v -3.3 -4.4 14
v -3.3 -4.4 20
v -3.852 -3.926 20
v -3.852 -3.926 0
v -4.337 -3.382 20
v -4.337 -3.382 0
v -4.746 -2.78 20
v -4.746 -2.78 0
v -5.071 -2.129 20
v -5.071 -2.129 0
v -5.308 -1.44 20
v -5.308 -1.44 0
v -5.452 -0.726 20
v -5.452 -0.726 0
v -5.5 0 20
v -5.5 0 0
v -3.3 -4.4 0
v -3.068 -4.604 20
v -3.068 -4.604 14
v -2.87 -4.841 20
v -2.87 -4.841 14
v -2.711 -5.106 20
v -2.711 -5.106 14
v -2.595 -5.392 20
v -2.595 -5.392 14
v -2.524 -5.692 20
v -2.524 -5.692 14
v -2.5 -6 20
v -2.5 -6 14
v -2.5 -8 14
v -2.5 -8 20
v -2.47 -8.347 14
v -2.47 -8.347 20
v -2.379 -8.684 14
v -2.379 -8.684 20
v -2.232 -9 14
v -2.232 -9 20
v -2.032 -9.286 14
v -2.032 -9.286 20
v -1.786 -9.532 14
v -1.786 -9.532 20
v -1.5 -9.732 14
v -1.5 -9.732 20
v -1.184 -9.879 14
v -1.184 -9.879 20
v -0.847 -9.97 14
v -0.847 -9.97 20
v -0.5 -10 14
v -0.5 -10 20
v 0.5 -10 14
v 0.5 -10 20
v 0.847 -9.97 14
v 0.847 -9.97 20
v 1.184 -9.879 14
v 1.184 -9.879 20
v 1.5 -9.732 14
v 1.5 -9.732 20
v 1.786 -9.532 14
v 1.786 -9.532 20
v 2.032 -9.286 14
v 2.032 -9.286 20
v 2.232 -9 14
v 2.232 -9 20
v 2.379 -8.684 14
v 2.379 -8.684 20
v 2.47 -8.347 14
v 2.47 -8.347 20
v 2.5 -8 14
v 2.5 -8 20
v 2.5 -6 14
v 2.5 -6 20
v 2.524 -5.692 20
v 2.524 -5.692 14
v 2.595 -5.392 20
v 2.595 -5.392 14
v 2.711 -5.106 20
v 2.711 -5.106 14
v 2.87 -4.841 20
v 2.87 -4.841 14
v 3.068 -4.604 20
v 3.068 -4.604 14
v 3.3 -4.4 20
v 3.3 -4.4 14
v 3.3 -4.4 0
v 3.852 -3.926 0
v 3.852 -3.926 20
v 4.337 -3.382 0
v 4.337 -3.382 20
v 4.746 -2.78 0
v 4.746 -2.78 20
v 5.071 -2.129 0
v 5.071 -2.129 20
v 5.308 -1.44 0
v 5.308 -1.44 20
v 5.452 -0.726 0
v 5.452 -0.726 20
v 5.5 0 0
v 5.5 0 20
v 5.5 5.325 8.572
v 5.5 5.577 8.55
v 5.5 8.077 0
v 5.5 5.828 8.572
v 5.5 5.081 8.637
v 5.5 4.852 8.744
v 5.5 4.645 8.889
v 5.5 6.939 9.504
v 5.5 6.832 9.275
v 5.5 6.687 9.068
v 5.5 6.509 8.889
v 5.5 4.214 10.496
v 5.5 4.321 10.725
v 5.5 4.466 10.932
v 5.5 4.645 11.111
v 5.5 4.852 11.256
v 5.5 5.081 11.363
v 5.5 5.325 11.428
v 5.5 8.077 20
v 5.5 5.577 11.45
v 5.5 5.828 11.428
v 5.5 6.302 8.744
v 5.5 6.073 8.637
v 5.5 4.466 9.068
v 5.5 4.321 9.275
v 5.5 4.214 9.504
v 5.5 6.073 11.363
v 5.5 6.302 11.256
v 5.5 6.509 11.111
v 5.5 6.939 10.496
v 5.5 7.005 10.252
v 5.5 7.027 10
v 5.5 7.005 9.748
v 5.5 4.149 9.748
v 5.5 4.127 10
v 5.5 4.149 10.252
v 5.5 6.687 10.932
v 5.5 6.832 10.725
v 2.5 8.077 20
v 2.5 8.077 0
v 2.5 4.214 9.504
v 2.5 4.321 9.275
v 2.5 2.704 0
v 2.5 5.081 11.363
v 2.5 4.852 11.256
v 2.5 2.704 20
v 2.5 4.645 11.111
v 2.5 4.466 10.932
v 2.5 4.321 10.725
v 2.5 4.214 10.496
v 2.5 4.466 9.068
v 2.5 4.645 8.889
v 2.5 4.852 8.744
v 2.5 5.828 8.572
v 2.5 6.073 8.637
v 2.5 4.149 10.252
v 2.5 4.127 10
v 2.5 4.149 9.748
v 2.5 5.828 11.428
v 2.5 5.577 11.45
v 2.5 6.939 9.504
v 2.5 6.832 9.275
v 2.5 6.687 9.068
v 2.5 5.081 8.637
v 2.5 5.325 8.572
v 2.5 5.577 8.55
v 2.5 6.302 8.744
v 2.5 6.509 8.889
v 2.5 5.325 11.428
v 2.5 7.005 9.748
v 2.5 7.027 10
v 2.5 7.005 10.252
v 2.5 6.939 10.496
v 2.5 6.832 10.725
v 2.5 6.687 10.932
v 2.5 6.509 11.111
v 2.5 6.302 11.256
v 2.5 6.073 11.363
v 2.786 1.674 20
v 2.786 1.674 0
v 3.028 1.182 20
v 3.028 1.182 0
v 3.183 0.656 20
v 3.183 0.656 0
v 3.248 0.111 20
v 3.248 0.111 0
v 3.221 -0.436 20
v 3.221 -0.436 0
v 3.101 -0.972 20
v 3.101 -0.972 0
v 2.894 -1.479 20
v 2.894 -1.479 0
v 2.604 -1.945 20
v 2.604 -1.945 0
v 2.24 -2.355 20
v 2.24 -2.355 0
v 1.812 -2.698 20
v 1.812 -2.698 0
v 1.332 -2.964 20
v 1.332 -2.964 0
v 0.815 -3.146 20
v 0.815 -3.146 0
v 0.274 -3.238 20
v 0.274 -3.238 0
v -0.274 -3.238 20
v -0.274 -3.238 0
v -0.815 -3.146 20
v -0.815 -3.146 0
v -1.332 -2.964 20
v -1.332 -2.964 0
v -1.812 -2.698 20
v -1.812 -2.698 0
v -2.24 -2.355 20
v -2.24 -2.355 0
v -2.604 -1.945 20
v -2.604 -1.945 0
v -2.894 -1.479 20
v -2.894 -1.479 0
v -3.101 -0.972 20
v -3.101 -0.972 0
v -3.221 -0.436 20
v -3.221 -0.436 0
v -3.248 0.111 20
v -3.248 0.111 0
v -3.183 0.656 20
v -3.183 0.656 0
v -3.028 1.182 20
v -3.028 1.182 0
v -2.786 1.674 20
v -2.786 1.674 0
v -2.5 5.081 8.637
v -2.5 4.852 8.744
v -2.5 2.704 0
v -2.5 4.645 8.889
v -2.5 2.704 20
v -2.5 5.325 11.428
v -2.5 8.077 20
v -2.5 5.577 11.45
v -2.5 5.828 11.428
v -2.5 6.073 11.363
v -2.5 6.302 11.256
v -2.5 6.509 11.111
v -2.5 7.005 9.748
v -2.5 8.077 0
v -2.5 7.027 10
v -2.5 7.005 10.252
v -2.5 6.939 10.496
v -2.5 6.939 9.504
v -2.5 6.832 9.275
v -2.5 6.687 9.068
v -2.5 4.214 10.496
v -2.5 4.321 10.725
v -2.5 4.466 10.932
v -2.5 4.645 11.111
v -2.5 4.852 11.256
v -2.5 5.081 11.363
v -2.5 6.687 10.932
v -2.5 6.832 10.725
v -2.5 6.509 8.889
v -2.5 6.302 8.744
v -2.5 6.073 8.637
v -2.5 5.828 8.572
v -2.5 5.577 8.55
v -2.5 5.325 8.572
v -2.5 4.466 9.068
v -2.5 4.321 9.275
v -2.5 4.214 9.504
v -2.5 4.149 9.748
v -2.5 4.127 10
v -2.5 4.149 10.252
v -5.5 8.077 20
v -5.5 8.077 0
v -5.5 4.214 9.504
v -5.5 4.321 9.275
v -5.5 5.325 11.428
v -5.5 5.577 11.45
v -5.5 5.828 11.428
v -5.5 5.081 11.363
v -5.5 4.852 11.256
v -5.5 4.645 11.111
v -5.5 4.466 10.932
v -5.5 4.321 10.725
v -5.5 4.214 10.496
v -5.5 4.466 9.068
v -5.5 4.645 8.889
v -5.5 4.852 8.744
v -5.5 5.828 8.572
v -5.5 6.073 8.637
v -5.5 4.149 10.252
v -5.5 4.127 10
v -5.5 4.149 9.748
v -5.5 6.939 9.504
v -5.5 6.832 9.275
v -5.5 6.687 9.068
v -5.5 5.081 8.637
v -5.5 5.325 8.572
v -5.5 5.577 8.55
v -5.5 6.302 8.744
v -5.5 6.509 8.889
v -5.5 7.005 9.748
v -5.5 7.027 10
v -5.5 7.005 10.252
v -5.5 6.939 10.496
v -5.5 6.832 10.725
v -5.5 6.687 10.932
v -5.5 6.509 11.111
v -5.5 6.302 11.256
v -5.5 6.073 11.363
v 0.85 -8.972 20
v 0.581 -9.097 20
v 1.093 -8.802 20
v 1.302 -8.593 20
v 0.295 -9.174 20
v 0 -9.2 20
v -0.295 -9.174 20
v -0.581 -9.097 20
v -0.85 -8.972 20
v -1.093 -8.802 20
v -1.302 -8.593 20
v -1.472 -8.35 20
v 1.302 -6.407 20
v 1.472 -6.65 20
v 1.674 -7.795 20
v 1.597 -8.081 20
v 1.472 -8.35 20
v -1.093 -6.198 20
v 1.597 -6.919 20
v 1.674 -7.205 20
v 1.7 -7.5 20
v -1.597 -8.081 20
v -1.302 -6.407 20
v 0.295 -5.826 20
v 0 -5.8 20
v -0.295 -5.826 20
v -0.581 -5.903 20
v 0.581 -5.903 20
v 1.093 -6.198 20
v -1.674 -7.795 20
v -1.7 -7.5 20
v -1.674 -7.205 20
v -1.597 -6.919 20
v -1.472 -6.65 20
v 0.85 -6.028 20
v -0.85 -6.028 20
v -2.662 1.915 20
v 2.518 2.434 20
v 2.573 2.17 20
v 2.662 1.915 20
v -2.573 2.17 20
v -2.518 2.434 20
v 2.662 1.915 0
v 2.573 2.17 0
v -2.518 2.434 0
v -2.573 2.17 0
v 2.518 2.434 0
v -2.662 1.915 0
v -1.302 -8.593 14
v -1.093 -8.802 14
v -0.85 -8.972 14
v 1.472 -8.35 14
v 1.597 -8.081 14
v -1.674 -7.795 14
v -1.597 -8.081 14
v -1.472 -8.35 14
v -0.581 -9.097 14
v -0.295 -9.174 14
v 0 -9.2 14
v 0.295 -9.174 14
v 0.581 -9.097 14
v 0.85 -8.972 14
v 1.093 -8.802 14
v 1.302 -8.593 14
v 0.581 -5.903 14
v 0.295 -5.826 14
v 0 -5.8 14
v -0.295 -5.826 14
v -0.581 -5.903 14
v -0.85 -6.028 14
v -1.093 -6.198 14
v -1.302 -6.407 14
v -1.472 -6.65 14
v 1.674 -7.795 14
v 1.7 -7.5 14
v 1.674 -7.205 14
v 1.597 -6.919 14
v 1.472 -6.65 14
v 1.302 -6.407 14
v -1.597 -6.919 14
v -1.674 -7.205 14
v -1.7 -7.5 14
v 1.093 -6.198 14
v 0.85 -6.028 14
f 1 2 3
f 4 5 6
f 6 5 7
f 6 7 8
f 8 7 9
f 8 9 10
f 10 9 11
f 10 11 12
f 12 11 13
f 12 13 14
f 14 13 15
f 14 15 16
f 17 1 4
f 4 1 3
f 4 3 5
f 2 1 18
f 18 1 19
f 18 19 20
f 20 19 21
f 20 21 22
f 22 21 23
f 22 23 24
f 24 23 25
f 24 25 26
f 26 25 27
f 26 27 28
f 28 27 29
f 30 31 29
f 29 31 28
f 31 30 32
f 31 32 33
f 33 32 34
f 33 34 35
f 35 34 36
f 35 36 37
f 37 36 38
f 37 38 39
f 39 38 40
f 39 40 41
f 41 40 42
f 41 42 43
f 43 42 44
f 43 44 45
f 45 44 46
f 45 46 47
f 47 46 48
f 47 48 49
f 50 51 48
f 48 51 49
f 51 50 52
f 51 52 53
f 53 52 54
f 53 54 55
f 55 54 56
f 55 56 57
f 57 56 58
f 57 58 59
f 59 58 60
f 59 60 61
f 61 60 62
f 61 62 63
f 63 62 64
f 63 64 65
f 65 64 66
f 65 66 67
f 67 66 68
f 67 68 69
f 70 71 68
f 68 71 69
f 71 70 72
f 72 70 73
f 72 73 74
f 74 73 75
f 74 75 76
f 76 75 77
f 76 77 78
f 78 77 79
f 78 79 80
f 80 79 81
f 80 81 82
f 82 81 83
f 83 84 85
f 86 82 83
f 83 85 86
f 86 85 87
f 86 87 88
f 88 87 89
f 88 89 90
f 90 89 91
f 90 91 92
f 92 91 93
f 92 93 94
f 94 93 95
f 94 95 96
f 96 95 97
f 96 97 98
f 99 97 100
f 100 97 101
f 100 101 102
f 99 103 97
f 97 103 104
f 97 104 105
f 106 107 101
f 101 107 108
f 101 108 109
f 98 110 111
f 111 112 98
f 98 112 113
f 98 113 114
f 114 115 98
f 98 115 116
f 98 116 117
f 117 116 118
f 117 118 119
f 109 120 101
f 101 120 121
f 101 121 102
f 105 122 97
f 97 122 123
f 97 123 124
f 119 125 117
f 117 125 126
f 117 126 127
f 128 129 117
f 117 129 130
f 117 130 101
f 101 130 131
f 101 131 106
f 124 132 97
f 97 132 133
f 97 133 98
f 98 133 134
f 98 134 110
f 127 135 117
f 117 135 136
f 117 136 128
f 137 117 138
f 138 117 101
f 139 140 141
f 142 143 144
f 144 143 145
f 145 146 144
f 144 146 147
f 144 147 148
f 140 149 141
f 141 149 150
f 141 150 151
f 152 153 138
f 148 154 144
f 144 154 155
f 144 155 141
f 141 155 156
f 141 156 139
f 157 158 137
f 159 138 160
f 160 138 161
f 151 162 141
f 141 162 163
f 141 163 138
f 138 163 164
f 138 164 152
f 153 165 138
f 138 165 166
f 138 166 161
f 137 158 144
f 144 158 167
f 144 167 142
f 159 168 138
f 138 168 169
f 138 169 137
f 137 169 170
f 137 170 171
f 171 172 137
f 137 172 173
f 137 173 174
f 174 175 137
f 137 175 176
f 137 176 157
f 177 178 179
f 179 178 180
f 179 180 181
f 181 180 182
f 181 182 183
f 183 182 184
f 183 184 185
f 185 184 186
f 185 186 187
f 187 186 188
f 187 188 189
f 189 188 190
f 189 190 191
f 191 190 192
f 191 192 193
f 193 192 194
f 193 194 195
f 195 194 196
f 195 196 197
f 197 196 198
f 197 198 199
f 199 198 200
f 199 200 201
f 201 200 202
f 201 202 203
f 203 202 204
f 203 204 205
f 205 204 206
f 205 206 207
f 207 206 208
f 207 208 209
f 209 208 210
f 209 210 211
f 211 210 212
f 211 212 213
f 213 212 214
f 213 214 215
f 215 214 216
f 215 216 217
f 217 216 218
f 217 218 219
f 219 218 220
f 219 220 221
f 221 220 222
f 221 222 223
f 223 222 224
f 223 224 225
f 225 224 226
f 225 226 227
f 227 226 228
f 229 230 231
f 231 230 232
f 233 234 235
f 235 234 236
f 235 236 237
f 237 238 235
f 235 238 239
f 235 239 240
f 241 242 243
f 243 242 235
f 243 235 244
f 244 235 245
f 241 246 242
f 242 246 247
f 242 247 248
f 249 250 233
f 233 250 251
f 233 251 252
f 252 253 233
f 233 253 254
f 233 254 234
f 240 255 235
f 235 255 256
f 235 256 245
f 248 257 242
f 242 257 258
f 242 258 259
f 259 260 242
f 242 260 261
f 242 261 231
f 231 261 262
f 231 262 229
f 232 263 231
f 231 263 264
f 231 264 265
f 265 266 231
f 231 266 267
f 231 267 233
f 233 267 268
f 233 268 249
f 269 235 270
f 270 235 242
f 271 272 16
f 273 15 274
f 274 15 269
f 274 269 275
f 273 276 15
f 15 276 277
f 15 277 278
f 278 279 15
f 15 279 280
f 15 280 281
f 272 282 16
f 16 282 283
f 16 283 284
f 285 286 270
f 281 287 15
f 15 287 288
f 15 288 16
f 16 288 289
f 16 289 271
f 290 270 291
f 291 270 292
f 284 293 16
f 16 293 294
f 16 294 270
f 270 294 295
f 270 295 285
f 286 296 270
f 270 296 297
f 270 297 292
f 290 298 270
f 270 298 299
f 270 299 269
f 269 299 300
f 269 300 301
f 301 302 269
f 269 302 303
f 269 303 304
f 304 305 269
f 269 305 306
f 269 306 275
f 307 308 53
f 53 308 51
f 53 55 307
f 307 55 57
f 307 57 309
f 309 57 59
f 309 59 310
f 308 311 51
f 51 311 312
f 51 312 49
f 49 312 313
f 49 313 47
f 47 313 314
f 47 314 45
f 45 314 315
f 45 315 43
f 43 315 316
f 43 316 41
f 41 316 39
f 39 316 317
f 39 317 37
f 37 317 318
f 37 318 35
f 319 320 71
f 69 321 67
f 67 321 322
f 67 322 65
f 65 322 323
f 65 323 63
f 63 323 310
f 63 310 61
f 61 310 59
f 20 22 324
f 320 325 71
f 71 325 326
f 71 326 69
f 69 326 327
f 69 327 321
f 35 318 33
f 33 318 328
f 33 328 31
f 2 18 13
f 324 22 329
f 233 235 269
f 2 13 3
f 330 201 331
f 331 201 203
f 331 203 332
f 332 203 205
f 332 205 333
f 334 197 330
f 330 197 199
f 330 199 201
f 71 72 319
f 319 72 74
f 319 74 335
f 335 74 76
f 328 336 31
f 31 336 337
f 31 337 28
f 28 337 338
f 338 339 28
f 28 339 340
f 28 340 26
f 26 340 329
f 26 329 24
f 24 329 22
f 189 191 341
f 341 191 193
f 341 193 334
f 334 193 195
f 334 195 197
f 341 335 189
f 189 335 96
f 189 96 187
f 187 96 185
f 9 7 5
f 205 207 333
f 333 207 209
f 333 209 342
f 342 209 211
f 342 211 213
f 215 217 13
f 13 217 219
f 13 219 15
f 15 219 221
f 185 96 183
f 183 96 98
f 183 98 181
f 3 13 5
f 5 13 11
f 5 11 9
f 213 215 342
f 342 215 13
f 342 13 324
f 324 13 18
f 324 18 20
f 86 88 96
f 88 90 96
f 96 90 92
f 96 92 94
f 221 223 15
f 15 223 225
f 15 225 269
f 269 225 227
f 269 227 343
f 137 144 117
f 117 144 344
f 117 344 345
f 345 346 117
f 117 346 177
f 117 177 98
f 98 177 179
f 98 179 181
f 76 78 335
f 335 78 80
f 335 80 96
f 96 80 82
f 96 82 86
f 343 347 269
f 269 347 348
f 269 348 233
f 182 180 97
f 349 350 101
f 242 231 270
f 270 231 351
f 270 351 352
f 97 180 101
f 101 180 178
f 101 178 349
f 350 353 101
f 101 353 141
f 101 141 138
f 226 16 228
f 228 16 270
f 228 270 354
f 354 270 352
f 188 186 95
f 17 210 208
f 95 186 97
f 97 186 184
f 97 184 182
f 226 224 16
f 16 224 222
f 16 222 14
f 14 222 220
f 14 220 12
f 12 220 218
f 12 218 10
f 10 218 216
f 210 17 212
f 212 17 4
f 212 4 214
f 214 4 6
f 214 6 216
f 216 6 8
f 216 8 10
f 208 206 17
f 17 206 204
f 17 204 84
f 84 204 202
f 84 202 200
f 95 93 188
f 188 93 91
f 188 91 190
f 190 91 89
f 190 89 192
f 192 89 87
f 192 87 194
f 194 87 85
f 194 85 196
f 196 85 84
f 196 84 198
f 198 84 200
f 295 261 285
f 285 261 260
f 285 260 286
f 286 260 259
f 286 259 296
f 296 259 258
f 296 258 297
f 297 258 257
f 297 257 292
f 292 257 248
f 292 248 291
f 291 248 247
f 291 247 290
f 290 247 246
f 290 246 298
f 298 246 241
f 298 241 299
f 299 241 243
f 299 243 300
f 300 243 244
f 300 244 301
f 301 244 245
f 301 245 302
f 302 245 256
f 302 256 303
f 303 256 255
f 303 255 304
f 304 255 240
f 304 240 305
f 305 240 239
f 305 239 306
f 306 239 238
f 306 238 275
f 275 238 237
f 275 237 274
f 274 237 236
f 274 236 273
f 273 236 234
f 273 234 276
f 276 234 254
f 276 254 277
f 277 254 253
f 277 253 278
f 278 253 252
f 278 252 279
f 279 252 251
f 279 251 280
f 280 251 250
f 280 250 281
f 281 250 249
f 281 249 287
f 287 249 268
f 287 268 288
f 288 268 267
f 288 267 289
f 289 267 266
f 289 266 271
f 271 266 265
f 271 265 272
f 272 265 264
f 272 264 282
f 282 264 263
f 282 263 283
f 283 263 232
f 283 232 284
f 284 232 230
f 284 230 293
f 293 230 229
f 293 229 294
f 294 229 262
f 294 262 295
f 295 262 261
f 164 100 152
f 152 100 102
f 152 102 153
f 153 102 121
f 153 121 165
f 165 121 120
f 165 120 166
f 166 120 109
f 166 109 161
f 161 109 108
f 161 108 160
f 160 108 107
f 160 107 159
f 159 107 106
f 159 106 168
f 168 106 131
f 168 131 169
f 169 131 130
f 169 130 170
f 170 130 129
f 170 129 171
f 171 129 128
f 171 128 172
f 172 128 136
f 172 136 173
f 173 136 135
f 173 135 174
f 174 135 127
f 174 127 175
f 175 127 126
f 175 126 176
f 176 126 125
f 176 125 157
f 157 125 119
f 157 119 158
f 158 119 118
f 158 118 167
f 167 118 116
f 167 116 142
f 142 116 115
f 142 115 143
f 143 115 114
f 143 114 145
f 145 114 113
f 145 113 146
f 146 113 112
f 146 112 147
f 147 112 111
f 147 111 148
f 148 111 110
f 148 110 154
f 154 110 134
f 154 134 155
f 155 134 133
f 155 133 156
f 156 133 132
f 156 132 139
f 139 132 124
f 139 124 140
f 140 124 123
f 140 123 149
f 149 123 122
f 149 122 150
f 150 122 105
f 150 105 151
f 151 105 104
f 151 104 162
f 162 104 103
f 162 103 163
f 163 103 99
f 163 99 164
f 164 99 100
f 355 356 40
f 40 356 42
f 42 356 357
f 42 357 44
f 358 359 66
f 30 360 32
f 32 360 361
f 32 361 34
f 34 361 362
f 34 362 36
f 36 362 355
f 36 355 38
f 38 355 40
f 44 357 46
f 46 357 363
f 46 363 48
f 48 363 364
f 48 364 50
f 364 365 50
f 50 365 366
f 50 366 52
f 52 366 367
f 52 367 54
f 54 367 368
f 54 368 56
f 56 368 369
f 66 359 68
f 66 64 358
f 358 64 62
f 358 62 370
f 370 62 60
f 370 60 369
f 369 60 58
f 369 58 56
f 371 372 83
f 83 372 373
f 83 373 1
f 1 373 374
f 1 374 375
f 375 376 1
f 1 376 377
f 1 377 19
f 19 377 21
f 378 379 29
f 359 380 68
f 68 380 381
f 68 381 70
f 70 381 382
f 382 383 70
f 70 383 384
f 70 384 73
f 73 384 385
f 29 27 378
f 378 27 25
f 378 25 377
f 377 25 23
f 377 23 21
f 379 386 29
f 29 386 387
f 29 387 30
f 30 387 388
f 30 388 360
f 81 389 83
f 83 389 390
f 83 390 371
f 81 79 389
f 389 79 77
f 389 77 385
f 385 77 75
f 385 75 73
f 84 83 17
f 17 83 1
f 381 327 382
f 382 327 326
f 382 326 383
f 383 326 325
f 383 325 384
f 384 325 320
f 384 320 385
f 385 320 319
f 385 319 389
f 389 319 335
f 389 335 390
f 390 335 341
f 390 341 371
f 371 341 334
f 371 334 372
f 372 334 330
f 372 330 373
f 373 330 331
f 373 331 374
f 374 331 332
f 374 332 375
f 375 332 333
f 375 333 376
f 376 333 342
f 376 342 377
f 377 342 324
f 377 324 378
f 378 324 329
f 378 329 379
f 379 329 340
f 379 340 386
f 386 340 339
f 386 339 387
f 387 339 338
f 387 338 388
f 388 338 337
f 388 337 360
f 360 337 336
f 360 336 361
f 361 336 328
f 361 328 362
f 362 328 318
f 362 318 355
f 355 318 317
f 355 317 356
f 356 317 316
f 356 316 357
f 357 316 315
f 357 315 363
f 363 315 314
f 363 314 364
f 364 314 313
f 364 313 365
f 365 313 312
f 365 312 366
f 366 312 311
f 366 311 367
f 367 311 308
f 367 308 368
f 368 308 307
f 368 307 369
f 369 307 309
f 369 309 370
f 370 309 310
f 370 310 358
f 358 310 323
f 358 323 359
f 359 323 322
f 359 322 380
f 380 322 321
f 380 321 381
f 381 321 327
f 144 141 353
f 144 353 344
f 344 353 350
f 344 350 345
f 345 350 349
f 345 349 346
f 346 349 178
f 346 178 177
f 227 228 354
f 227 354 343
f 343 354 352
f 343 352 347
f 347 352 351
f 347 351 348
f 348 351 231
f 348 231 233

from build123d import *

# Parameters (mm, degrees)
BOSS_EXTRU_1_DEPTH      = 20
D_GAGEMENT_M2_51_D      = 2.9
ENL_V_MAT_EXTRU_1_DEPTH = 14
D_GAGEMENT_M31_D        = 3.4
CONG_1_R                = 2


with BuildPart() as part:
    # Esquisse1 → Boss.-Extru.1 (new body)
    with BuildSketch(Plane.XY):
        with BuildLine():
            Line((-5.5, 0), (-5.5, 8.076655966))
            Line((-5.5, 8.076655966), (-2.5, 8.076655966))
            Line((-2.5, 8.076655966), (-2.5, 2.076655966))
            ThreePointArc((-2.5, 2.076655966), (0, -3.25), (2.5, 2.076655966))
            Line((2.5, 2.076655966), (2.5, 8.076655966))
            Line((2.5, 8.076655966), (5.5, 8.076655966))
            Line((5.5, 8.076655966), (5.5, 0))
            ThreePointArc((5.5, 0), (4.91934955, -2.459674775), (3.3, -4.4))
            ThreePointArc((3.3, -4.4), (2.711145618, -5.105572809), (2.5, -6))
            Line((2.5, -6), (2.5, -8))
            ThreePointArc((2.5, -8), (1.914213562, -9.414213562), (0.5, -10))
            Line((0.5, -10), (-0.5, -10))
            ThreePointArc((-0.5, -10), (-1.914213562, -9.414213562), (-2.5, -8))
            Line((-2.5, -8), (-2.5, -6))
            ThreePointArc((-2.5, -6), (-2.711145618, -5.105572809), (-3.3, -4.4))
            ThreePointArc((-3.3, -4.4), (-4.91934955, -2.459674775), (-5.5, 0))
        make_face()
    extrude(amount=BOSS_EXTRU_1_DEPTH)

    # Dégagement M2.51 (through all)
    with Locations(Plane(origin=(5.5, 0, 0), x_dir=(0, 0, -1), z_dir=(1, 0, 0))):
        with Locations((-10, 5.576655966)):
            Hole(D_GAGEMENT_M2_51_D / 2)

    # Esquisse5 → Enlèv. mat.-Extru.1 (cut)
    with BuildSketch(Plane(origin=(0, 0, 0), x_dir=(-1, 0, 0), z_dir=(0, 0, -1))):
        with BuildLine():
            Line((-2.5, -6), (-2.5, -8))
            ThreePointArc((-2.5, -8), (-1.914213562, -9.414213562), (-0.5, -10))
            Line((-0.5, -10), (0.5, -10))
            ThreePointArc((0.5, -10), (1.914213562, -9.414213562), (2.5, -8))
            Line((2.5, -8), (2.5, -6))
            ThreePointArc((2.5, -6), (2.711145618, -5.105572809), (3.3, -4.4))
            Line((3.3, -4.4), (-3.3, -4.4))
            ThreePointArc((-3.3, -4.4), (-2.711145618, -5.105572809), (-2.5, -6))
        make_face()
    extrude(amount=-ENL_V_MAT_EXTRU_1_DEPTH, mode=Mode.SUBTRACT)

    # Dégagement M31 (through all)
    with Locations(Plane(origin=(0, -7.5, 20), x_dir=(1, 0, 0), z_dir=(0, 0, 1))):
        with Locations((0, 0)):
            Hole(D_GAGEMENT_M31_D / 2)

    # Congé1
    cong_1_edges = [part.edges().sort_by_distance(p)[0] for p in [
        (-2.5, 2.076655966, 10),
        (2.5, 2.076655966, 10),
    ]]
    fillet(cong_1_edges, radius=CONG_1_R)


solid = part.part
